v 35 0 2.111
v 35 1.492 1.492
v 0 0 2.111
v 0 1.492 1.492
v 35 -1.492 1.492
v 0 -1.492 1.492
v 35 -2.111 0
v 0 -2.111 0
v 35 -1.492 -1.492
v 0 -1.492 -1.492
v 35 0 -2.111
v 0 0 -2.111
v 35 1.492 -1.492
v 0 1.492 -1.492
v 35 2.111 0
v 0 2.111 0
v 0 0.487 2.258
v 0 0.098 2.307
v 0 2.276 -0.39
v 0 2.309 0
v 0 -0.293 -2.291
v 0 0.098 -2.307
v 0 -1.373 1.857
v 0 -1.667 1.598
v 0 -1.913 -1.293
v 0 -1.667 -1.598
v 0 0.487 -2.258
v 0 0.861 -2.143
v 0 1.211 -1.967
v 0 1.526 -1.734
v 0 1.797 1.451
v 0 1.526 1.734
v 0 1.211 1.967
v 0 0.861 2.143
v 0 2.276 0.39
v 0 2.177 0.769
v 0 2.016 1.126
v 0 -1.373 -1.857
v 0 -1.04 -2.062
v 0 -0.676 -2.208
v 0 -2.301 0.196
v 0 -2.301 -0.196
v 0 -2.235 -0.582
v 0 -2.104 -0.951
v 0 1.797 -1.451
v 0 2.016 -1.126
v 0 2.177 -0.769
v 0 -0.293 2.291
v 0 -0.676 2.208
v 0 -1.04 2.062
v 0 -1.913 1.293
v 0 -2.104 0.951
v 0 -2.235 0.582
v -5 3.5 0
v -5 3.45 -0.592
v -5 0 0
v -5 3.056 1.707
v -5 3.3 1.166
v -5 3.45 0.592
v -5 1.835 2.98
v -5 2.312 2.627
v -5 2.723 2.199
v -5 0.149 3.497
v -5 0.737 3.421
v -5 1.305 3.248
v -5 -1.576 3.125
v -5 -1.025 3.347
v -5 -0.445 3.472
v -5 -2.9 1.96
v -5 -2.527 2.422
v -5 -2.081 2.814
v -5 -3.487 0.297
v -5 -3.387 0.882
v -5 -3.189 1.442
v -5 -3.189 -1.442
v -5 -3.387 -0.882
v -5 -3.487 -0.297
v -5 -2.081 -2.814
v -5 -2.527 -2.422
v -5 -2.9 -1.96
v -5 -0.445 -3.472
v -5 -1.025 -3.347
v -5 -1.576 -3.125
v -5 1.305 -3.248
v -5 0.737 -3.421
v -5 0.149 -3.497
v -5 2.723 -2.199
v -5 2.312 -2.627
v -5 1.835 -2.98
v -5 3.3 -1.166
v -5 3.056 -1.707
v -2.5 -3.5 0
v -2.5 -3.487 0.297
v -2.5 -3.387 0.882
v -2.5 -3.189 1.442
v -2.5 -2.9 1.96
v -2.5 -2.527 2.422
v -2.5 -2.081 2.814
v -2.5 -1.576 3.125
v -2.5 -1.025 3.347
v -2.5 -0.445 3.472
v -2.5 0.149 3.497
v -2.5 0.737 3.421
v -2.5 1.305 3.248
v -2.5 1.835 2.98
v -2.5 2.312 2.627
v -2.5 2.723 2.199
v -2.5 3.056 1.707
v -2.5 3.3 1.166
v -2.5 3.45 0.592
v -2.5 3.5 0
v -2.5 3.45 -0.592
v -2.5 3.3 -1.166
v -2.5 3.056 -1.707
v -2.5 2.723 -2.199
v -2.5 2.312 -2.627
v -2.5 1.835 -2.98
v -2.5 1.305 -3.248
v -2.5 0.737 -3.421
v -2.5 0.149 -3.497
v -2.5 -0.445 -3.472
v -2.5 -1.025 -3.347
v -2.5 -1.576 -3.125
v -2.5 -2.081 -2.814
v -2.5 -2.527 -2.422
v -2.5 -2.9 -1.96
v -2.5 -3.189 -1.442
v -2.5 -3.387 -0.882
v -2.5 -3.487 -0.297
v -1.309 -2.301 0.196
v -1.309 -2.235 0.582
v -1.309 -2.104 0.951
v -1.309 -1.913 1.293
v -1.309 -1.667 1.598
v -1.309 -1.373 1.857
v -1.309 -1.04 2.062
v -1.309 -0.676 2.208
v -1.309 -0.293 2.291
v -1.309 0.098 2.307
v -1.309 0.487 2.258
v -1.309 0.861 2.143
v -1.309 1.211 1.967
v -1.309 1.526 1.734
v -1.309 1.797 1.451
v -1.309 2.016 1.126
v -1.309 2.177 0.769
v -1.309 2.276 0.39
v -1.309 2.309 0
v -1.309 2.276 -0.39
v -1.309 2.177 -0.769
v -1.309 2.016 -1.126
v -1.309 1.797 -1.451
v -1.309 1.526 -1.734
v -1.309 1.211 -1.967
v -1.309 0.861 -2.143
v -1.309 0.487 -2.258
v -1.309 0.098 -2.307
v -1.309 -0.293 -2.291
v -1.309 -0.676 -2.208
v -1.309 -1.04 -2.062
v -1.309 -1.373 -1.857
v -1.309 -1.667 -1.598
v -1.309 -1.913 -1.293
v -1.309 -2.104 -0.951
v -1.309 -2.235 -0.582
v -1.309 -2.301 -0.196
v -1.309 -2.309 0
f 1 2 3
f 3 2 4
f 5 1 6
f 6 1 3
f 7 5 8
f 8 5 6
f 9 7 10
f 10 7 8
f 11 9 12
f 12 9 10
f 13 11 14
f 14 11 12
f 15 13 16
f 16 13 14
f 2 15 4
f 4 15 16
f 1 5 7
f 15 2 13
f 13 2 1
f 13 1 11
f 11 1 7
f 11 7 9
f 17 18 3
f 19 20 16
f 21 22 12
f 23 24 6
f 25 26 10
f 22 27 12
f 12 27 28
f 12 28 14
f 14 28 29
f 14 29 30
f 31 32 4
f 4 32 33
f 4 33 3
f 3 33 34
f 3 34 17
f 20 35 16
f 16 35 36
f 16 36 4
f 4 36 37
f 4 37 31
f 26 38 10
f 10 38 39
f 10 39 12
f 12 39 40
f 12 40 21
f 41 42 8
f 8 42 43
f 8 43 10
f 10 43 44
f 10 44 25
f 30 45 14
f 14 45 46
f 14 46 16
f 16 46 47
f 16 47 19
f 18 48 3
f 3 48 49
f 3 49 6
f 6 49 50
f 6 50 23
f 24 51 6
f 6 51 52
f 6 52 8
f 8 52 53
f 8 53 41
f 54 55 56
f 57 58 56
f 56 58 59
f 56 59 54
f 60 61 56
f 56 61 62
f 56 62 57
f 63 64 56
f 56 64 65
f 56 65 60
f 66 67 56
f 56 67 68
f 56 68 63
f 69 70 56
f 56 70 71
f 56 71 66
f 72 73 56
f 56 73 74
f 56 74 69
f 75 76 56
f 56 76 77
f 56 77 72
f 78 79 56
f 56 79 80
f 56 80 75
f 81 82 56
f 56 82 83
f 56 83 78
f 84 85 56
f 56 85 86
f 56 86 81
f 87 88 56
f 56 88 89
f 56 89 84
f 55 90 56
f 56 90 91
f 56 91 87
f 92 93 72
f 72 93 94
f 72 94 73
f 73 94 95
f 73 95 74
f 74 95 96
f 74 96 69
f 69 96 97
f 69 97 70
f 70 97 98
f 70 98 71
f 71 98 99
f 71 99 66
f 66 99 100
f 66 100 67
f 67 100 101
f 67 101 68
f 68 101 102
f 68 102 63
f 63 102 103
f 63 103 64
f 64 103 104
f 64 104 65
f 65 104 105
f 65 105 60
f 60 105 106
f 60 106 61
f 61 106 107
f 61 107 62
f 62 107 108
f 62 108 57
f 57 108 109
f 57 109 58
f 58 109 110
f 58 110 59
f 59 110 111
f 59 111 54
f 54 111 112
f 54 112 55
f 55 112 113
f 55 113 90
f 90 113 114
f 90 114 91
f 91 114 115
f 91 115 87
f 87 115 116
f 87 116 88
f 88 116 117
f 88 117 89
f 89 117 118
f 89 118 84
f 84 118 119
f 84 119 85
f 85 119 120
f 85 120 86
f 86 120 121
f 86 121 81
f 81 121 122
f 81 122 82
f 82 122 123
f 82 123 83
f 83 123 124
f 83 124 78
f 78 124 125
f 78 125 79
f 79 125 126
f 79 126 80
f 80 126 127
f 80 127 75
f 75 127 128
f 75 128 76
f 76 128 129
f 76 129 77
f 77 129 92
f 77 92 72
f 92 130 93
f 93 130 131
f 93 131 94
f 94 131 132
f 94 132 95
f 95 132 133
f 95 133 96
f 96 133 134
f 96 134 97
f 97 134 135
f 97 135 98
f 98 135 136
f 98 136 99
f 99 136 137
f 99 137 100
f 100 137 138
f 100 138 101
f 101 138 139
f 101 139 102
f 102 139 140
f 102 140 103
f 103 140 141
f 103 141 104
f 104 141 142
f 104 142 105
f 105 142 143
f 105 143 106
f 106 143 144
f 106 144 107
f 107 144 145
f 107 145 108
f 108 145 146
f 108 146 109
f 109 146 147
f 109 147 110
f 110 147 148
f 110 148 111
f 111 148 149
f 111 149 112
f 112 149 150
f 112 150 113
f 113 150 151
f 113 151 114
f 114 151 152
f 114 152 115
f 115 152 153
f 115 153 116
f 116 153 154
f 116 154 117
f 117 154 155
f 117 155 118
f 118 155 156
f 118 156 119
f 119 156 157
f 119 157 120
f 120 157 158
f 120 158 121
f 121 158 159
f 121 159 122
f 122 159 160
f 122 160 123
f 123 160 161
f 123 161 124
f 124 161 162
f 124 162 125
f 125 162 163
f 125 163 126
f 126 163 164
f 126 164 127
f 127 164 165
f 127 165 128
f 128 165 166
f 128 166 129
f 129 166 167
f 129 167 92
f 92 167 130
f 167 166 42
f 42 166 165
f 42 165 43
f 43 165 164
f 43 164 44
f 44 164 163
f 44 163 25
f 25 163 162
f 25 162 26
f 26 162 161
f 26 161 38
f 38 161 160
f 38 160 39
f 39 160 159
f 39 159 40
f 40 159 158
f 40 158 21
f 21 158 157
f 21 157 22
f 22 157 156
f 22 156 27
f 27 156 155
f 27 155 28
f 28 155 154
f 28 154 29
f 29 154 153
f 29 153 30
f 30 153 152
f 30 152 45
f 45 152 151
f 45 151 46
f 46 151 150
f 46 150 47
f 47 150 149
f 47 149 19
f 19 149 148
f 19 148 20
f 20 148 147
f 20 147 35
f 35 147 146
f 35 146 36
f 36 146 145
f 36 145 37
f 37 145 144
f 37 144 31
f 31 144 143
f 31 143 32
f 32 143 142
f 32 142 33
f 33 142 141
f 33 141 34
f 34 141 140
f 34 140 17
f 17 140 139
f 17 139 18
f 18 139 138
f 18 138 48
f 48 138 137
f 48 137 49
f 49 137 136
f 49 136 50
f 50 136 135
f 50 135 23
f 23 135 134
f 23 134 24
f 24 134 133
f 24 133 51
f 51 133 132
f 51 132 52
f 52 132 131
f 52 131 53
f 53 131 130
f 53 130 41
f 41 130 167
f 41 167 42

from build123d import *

# Parameters (mm, degrees)
BOSS_EXTRUDE1_DEPTH = 35


with BuildPart() as part:
    # Sketch1 → Boss-Extrude1 (new body)
    with BuildSketch(Plane(origin=(0, 0, 0), x_dir=(0, 0, -1), z_dir=(1, 0, 0))):
        Polygon((-2.110664791, 0), (-1.492465386, -1.492465386), (0, -2.110664791), (1.492465386, -1.492465386), (2.110664791, 0), (1.492465386, 1.492465386), (0, 2.110664791), (-1.492465386, 1.492465386), align=None)
    extrude(amount=BOSS_EXTRUDE1_DEPTH)

    # Sketch4 → Revolve1 (revolve)
    with BuildSketch(Plane.XY):
        Polygon((0, 0), (-5, 0), (-5, 3.5), (-2.5, 3.5), (-1.309401077, 2.309401077), (0, 2.309401077), align=None)
    revolve(axis=Axis((0, 0, 0), (-1, 0, 0)))


solid = part.part
